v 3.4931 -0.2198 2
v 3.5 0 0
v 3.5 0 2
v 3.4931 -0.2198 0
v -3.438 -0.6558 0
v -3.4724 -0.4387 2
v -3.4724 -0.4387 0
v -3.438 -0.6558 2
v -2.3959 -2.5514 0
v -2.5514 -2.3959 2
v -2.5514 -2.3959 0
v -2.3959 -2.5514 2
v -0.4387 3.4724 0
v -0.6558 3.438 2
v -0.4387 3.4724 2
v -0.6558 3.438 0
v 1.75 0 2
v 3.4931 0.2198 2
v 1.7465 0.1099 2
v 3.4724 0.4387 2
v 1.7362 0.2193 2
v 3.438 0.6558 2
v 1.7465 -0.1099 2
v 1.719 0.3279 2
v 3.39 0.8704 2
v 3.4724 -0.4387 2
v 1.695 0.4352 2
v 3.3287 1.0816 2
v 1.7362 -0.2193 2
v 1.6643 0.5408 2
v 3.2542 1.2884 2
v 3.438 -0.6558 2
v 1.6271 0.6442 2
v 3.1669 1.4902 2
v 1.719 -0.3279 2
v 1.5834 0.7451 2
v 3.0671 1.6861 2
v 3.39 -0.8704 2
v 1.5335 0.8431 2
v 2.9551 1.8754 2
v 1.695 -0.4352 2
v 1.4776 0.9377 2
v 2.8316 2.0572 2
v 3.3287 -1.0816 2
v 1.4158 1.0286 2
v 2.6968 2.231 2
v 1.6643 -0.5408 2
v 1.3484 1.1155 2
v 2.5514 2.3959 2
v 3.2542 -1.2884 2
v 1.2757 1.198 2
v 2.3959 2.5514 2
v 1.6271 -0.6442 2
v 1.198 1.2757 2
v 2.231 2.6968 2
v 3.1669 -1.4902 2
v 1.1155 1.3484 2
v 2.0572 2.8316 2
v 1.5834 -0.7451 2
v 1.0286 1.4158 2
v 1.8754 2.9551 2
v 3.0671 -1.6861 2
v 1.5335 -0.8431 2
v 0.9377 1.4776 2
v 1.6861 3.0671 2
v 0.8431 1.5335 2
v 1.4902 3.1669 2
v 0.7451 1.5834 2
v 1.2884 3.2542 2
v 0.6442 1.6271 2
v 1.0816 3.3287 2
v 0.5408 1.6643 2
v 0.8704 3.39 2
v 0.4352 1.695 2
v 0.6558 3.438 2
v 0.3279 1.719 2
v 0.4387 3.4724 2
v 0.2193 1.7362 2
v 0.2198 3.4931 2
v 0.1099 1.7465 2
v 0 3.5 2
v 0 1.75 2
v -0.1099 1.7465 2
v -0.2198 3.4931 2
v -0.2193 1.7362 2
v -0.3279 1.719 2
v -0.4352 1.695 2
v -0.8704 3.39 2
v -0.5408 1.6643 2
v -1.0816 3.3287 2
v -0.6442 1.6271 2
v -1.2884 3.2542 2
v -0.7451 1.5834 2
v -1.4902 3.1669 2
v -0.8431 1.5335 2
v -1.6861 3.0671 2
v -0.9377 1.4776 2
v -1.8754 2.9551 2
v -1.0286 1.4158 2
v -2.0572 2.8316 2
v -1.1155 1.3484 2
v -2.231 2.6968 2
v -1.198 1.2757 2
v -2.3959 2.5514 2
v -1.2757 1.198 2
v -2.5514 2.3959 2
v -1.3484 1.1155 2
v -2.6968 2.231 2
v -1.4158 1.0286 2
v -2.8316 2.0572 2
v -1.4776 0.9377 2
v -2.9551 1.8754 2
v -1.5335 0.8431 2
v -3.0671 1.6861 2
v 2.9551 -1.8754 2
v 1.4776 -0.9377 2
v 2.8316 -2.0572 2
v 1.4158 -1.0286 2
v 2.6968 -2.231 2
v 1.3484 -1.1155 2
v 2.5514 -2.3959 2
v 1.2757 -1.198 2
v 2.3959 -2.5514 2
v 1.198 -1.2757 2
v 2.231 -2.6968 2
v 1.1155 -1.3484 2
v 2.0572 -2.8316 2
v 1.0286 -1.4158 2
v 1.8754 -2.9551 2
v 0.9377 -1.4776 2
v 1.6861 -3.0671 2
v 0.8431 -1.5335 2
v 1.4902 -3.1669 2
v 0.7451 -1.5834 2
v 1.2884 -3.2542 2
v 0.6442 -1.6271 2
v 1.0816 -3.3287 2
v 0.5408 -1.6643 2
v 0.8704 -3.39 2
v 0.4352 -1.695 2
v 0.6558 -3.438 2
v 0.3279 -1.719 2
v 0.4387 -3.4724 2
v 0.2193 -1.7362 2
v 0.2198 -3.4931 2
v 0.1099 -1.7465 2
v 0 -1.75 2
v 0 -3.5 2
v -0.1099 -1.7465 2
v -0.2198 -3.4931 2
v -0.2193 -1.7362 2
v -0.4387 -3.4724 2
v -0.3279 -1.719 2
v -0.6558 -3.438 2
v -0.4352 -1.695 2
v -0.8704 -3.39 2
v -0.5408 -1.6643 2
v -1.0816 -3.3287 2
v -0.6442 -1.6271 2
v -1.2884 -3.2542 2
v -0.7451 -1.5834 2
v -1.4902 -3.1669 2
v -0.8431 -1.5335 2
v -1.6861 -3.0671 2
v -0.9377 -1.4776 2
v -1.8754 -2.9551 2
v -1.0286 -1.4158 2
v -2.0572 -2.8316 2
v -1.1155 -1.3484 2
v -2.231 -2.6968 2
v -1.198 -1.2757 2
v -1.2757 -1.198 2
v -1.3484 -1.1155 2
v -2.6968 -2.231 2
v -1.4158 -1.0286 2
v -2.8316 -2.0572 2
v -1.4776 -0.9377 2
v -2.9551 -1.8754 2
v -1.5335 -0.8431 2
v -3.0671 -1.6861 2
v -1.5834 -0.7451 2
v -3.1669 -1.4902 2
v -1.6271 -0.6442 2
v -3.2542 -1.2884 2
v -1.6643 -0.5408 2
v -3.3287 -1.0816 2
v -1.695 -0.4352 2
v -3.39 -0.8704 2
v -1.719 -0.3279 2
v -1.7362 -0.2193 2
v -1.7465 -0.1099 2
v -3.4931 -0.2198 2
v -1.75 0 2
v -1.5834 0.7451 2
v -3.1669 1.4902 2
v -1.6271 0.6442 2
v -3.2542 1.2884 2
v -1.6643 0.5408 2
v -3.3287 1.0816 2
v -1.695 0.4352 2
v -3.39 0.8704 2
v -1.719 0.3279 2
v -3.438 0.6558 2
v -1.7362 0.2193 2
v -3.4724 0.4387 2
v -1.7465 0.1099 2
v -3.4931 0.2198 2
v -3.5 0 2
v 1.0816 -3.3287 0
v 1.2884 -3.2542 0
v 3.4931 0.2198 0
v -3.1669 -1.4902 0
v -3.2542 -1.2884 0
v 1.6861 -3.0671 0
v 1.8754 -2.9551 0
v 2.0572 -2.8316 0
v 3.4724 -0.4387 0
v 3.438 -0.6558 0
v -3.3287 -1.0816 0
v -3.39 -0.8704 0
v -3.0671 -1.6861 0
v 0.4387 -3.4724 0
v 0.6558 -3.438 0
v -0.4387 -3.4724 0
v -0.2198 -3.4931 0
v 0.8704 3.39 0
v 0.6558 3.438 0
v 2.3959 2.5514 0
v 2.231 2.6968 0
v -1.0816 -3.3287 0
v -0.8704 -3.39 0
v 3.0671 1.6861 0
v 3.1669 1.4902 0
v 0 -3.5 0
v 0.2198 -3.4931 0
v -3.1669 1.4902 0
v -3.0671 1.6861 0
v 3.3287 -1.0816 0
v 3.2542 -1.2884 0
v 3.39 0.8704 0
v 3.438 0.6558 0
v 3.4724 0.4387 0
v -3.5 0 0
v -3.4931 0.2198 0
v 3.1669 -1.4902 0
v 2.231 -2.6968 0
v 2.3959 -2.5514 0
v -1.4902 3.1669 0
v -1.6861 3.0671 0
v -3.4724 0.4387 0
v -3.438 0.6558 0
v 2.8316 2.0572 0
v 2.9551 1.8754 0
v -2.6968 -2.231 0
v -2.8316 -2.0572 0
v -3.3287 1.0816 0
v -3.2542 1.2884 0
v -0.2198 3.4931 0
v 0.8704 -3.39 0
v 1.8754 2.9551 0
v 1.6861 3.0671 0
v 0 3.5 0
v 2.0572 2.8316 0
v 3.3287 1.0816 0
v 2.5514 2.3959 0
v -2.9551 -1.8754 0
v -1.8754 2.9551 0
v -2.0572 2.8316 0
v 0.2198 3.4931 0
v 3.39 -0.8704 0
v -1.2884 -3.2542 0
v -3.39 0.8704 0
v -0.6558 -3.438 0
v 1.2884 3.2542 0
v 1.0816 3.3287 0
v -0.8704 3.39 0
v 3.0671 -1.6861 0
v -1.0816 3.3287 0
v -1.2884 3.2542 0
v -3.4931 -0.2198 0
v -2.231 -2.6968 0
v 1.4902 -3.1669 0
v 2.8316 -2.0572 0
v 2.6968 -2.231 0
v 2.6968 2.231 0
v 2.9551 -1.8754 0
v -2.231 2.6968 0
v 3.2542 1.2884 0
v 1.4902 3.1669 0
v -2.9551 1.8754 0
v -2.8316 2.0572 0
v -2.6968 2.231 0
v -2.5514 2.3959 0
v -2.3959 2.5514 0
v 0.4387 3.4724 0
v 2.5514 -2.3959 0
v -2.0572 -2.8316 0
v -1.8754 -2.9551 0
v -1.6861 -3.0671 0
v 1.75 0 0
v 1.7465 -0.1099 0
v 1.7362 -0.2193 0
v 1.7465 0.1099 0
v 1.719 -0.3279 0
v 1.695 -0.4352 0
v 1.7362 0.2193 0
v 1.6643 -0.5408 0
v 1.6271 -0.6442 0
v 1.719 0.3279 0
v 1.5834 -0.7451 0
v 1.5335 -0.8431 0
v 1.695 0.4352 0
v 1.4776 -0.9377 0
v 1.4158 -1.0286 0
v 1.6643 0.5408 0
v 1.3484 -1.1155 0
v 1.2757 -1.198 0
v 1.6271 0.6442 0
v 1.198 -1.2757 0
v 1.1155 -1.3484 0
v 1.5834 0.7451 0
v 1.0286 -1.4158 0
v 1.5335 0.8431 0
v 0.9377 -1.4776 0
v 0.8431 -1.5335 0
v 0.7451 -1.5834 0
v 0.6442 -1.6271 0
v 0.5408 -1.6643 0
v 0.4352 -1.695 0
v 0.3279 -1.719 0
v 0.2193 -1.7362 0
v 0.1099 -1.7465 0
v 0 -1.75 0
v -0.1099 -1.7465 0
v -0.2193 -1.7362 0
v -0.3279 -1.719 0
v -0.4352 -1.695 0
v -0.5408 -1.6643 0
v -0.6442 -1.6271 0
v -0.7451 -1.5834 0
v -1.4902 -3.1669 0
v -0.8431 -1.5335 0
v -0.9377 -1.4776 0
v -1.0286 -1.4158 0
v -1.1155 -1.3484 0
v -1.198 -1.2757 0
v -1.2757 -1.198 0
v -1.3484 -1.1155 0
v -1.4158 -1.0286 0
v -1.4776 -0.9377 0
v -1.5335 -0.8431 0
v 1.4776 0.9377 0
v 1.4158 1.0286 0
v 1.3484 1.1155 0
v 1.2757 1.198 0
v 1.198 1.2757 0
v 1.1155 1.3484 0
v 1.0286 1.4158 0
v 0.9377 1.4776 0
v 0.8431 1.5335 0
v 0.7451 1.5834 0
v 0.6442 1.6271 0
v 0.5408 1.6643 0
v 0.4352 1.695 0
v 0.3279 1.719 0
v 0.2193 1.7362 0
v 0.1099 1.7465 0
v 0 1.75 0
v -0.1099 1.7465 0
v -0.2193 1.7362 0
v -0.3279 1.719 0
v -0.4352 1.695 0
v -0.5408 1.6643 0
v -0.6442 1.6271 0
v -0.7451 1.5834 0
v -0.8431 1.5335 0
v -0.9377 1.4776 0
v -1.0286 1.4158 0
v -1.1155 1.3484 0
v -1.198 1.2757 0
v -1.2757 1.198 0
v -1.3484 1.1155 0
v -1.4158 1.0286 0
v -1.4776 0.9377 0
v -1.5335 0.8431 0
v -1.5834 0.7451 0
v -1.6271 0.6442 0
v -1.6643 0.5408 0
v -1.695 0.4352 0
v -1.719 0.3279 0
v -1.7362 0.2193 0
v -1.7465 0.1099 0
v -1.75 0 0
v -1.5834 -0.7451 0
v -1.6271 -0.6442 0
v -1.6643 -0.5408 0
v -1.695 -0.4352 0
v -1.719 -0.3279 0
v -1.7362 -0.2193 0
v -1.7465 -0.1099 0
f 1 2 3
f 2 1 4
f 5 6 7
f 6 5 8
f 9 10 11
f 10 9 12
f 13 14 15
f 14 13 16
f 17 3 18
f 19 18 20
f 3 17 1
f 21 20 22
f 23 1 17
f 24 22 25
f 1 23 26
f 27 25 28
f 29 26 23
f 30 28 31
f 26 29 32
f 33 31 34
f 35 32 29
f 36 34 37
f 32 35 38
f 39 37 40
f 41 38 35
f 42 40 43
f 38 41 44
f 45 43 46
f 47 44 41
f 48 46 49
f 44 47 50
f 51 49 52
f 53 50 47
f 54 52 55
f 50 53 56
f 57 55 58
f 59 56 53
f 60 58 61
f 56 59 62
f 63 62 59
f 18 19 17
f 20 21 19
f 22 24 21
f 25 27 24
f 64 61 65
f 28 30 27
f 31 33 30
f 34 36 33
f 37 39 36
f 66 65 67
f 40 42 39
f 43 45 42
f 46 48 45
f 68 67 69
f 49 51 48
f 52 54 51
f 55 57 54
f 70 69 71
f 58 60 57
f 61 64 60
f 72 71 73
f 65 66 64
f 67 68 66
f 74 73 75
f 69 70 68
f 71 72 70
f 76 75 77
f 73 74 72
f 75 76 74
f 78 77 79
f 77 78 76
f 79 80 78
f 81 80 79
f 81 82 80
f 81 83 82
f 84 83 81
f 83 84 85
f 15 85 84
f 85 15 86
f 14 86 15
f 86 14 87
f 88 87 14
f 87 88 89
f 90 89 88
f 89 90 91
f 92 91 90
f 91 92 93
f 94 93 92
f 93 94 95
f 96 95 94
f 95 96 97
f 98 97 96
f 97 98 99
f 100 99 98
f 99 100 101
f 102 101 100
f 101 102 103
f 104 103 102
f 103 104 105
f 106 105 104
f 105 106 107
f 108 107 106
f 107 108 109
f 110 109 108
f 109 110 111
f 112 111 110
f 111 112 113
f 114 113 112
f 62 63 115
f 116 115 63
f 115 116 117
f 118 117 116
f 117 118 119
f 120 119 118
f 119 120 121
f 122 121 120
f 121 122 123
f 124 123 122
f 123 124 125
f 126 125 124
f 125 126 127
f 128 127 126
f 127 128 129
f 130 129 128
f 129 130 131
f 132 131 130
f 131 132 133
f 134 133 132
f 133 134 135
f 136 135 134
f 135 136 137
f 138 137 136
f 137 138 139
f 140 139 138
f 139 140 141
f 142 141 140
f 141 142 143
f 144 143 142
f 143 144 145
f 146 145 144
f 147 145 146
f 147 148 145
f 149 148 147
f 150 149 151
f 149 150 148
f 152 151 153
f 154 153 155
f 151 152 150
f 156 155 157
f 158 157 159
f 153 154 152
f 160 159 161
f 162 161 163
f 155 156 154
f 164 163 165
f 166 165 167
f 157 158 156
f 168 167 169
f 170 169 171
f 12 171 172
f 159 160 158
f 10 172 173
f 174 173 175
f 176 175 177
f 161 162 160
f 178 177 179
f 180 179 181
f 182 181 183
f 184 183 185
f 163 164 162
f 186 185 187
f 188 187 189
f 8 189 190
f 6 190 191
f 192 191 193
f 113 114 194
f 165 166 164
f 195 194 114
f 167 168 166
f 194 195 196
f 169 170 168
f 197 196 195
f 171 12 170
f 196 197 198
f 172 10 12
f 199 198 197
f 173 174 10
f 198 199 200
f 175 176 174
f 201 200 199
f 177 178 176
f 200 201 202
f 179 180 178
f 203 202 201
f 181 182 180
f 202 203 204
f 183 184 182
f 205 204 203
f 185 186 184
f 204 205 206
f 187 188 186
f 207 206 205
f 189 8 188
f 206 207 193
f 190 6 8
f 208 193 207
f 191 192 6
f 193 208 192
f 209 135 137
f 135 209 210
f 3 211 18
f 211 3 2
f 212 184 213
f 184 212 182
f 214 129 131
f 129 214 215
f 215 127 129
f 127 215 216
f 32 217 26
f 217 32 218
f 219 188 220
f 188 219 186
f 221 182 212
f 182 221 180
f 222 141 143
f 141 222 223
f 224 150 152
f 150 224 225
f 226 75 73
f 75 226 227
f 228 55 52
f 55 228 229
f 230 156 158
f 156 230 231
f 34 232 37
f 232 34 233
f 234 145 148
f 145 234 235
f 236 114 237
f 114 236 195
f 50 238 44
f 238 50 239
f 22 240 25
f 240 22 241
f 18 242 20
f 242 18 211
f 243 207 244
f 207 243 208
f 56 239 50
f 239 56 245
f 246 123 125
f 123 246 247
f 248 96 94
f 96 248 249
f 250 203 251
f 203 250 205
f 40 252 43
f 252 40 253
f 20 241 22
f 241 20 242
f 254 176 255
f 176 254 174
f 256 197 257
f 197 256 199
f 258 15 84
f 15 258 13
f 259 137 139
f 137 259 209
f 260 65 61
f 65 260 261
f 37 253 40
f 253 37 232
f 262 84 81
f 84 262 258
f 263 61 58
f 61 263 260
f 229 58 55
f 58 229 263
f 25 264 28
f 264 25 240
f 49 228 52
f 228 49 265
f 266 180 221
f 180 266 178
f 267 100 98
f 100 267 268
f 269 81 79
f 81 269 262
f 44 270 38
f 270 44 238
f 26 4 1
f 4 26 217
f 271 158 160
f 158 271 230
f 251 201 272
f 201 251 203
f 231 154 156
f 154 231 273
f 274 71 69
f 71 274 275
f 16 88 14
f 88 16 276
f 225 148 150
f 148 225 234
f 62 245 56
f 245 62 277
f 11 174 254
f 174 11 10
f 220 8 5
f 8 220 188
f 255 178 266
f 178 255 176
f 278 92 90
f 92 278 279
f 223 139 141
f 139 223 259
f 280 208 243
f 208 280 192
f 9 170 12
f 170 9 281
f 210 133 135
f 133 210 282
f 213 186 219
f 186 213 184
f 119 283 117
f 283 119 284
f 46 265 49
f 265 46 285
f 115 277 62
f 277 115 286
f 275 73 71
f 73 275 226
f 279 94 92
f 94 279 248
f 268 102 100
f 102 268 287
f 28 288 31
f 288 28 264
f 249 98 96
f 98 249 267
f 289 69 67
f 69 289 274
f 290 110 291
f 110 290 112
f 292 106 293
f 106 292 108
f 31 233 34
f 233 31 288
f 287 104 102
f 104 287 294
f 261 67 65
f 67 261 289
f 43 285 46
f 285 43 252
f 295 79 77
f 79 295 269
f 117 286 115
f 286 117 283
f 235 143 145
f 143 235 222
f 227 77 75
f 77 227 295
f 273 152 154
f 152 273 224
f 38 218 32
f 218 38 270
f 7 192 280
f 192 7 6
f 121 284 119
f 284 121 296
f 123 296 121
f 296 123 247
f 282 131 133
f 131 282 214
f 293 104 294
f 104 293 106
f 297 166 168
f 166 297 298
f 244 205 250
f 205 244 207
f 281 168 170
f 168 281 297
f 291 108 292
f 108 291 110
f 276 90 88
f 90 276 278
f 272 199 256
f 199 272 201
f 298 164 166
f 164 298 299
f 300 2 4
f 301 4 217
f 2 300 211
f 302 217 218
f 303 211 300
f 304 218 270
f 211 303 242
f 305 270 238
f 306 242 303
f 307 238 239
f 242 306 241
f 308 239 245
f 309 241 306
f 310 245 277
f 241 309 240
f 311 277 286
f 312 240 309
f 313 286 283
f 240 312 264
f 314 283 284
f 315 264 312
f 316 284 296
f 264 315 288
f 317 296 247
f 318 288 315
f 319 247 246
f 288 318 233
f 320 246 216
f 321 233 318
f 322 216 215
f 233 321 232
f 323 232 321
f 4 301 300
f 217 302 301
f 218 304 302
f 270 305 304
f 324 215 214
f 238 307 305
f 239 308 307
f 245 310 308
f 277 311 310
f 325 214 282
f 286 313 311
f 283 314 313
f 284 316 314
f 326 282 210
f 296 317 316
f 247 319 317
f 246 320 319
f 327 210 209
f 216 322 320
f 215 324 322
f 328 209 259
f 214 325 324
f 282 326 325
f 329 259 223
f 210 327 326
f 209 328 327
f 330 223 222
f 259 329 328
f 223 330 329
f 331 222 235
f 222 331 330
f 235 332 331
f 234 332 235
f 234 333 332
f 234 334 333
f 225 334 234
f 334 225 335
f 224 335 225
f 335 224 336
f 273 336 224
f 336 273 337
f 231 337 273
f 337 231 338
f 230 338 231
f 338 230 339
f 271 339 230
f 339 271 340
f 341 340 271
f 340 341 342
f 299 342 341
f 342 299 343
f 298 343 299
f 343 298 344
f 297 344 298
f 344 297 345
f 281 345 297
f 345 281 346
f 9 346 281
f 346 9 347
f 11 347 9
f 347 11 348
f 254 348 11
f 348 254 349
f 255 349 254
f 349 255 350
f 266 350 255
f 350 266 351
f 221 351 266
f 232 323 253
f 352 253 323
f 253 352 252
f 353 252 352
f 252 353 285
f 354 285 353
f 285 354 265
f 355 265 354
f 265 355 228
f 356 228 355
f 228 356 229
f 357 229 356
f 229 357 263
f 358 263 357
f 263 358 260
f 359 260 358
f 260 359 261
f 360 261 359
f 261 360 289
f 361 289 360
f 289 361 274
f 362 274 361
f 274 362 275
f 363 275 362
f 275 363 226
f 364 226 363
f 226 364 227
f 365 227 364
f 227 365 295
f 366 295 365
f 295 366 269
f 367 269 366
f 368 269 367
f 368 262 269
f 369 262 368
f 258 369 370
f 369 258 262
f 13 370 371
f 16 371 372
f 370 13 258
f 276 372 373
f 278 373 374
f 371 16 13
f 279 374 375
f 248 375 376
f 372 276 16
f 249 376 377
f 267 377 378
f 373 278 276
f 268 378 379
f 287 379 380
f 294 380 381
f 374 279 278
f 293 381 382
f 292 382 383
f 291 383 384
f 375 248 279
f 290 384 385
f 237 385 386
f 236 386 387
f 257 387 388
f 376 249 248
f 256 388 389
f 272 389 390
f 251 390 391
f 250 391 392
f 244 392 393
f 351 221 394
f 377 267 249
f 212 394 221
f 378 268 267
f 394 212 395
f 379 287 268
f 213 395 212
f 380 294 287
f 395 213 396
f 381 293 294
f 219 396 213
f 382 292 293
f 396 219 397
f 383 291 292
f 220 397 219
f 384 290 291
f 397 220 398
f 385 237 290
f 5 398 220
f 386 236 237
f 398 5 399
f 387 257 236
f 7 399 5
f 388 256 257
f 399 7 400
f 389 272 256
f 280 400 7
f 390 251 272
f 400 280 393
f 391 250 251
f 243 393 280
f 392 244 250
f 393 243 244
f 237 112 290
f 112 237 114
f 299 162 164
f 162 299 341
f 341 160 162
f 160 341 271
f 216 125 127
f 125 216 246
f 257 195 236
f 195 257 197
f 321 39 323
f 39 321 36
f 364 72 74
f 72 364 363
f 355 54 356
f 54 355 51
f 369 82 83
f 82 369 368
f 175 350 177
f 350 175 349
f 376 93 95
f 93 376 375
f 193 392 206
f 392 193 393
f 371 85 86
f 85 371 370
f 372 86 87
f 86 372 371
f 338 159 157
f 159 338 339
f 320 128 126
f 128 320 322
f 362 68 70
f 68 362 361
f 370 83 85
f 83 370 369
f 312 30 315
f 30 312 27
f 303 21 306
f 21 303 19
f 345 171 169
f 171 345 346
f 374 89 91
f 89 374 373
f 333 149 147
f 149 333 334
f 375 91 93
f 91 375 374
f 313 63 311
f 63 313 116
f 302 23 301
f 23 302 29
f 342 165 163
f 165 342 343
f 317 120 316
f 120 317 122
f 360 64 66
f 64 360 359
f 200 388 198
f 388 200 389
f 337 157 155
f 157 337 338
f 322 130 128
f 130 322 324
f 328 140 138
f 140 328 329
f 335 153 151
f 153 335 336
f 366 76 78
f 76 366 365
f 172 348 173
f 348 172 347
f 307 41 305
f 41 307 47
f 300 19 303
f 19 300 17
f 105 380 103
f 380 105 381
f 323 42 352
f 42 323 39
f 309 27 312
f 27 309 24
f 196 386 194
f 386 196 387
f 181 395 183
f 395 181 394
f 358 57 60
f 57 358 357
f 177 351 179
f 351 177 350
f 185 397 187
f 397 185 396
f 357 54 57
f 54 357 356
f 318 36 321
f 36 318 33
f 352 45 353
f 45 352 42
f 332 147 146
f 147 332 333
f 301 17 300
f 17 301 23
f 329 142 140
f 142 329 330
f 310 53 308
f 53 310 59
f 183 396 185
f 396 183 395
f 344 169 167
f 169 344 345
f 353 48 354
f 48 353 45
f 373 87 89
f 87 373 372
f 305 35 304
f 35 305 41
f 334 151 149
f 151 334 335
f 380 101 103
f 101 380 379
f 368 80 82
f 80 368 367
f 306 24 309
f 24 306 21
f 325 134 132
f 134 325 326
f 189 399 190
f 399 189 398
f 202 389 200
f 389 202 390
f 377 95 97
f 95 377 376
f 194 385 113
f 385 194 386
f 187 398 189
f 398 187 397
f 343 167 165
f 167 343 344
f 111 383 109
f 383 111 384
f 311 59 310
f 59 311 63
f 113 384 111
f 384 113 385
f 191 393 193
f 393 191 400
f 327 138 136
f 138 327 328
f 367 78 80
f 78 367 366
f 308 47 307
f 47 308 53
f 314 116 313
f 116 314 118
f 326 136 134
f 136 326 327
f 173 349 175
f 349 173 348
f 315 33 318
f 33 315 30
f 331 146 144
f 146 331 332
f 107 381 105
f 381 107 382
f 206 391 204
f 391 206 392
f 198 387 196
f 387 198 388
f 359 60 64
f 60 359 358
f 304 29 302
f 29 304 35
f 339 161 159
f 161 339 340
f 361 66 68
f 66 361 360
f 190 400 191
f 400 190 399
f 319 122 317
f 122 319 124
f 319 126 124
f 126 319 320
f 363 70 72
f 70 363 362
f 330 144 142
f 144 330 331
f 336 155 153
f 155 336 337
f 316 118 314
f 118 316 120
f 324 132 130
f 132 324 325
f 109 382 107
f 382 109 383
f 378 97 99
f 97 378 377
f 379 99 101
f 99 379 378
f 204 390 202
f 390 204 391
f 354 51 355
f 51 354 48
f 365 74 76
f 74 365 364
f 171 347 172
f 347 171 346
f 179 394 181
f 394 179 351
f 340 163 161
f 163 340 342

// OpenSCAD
// arduino spacer

//2mm hoch 3,5 innen

$fn=100;

difference() {
  cylinder(d=7, 2);
  translate([0,0,-.1]) cylinder(d=3.5, 3);
}
